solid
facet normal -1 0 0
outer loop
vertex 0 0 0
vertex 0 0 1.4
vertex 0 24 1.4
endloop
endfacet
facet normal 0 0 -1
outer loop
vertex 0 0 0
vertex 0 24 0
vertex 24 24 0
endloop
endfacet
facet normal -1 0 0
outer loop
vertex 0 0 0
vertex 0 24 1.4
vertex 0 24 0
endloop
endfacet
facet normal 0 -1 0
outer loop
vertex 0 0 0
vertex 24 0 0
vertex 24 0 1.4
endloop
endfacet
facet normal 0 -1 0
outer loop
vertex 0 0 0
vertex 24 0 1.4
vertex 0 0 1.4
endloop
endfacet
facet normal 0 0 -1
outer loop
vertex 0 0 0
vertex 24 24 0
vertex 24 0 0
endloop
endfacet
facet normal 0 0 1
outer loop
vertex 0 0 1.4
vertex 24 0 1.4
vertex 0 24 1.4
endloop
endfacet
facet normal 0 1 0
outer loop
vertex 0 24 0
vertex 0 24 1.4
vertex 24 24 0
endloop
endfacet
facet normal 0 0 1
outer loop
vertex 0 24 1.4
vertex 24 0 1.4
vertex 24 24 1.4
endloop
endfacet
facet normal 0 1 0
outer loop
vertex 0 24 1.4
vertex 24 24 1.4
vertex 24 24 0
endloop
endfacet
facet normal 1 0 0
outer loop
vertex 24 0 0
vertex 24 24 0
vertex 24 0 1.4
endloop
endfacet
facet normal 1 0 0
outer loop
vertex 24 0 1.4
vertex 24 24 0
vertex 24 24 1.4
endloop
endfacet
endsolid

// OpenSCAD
/* Warning, this is a very basic generator with a lot of approximation 
input data : [LQFP, 6GX, 24x24x1.4mm, 160, , A, C04-00432A]
generated by com.zoubworld.electronics.cad.model3d.Basic
Date : Sun Feb 15 10:50:48 CET 2026
*/

//body
color("black")
translate([0,0,0])
cube([24.0,24.0,1.4], center=false);
